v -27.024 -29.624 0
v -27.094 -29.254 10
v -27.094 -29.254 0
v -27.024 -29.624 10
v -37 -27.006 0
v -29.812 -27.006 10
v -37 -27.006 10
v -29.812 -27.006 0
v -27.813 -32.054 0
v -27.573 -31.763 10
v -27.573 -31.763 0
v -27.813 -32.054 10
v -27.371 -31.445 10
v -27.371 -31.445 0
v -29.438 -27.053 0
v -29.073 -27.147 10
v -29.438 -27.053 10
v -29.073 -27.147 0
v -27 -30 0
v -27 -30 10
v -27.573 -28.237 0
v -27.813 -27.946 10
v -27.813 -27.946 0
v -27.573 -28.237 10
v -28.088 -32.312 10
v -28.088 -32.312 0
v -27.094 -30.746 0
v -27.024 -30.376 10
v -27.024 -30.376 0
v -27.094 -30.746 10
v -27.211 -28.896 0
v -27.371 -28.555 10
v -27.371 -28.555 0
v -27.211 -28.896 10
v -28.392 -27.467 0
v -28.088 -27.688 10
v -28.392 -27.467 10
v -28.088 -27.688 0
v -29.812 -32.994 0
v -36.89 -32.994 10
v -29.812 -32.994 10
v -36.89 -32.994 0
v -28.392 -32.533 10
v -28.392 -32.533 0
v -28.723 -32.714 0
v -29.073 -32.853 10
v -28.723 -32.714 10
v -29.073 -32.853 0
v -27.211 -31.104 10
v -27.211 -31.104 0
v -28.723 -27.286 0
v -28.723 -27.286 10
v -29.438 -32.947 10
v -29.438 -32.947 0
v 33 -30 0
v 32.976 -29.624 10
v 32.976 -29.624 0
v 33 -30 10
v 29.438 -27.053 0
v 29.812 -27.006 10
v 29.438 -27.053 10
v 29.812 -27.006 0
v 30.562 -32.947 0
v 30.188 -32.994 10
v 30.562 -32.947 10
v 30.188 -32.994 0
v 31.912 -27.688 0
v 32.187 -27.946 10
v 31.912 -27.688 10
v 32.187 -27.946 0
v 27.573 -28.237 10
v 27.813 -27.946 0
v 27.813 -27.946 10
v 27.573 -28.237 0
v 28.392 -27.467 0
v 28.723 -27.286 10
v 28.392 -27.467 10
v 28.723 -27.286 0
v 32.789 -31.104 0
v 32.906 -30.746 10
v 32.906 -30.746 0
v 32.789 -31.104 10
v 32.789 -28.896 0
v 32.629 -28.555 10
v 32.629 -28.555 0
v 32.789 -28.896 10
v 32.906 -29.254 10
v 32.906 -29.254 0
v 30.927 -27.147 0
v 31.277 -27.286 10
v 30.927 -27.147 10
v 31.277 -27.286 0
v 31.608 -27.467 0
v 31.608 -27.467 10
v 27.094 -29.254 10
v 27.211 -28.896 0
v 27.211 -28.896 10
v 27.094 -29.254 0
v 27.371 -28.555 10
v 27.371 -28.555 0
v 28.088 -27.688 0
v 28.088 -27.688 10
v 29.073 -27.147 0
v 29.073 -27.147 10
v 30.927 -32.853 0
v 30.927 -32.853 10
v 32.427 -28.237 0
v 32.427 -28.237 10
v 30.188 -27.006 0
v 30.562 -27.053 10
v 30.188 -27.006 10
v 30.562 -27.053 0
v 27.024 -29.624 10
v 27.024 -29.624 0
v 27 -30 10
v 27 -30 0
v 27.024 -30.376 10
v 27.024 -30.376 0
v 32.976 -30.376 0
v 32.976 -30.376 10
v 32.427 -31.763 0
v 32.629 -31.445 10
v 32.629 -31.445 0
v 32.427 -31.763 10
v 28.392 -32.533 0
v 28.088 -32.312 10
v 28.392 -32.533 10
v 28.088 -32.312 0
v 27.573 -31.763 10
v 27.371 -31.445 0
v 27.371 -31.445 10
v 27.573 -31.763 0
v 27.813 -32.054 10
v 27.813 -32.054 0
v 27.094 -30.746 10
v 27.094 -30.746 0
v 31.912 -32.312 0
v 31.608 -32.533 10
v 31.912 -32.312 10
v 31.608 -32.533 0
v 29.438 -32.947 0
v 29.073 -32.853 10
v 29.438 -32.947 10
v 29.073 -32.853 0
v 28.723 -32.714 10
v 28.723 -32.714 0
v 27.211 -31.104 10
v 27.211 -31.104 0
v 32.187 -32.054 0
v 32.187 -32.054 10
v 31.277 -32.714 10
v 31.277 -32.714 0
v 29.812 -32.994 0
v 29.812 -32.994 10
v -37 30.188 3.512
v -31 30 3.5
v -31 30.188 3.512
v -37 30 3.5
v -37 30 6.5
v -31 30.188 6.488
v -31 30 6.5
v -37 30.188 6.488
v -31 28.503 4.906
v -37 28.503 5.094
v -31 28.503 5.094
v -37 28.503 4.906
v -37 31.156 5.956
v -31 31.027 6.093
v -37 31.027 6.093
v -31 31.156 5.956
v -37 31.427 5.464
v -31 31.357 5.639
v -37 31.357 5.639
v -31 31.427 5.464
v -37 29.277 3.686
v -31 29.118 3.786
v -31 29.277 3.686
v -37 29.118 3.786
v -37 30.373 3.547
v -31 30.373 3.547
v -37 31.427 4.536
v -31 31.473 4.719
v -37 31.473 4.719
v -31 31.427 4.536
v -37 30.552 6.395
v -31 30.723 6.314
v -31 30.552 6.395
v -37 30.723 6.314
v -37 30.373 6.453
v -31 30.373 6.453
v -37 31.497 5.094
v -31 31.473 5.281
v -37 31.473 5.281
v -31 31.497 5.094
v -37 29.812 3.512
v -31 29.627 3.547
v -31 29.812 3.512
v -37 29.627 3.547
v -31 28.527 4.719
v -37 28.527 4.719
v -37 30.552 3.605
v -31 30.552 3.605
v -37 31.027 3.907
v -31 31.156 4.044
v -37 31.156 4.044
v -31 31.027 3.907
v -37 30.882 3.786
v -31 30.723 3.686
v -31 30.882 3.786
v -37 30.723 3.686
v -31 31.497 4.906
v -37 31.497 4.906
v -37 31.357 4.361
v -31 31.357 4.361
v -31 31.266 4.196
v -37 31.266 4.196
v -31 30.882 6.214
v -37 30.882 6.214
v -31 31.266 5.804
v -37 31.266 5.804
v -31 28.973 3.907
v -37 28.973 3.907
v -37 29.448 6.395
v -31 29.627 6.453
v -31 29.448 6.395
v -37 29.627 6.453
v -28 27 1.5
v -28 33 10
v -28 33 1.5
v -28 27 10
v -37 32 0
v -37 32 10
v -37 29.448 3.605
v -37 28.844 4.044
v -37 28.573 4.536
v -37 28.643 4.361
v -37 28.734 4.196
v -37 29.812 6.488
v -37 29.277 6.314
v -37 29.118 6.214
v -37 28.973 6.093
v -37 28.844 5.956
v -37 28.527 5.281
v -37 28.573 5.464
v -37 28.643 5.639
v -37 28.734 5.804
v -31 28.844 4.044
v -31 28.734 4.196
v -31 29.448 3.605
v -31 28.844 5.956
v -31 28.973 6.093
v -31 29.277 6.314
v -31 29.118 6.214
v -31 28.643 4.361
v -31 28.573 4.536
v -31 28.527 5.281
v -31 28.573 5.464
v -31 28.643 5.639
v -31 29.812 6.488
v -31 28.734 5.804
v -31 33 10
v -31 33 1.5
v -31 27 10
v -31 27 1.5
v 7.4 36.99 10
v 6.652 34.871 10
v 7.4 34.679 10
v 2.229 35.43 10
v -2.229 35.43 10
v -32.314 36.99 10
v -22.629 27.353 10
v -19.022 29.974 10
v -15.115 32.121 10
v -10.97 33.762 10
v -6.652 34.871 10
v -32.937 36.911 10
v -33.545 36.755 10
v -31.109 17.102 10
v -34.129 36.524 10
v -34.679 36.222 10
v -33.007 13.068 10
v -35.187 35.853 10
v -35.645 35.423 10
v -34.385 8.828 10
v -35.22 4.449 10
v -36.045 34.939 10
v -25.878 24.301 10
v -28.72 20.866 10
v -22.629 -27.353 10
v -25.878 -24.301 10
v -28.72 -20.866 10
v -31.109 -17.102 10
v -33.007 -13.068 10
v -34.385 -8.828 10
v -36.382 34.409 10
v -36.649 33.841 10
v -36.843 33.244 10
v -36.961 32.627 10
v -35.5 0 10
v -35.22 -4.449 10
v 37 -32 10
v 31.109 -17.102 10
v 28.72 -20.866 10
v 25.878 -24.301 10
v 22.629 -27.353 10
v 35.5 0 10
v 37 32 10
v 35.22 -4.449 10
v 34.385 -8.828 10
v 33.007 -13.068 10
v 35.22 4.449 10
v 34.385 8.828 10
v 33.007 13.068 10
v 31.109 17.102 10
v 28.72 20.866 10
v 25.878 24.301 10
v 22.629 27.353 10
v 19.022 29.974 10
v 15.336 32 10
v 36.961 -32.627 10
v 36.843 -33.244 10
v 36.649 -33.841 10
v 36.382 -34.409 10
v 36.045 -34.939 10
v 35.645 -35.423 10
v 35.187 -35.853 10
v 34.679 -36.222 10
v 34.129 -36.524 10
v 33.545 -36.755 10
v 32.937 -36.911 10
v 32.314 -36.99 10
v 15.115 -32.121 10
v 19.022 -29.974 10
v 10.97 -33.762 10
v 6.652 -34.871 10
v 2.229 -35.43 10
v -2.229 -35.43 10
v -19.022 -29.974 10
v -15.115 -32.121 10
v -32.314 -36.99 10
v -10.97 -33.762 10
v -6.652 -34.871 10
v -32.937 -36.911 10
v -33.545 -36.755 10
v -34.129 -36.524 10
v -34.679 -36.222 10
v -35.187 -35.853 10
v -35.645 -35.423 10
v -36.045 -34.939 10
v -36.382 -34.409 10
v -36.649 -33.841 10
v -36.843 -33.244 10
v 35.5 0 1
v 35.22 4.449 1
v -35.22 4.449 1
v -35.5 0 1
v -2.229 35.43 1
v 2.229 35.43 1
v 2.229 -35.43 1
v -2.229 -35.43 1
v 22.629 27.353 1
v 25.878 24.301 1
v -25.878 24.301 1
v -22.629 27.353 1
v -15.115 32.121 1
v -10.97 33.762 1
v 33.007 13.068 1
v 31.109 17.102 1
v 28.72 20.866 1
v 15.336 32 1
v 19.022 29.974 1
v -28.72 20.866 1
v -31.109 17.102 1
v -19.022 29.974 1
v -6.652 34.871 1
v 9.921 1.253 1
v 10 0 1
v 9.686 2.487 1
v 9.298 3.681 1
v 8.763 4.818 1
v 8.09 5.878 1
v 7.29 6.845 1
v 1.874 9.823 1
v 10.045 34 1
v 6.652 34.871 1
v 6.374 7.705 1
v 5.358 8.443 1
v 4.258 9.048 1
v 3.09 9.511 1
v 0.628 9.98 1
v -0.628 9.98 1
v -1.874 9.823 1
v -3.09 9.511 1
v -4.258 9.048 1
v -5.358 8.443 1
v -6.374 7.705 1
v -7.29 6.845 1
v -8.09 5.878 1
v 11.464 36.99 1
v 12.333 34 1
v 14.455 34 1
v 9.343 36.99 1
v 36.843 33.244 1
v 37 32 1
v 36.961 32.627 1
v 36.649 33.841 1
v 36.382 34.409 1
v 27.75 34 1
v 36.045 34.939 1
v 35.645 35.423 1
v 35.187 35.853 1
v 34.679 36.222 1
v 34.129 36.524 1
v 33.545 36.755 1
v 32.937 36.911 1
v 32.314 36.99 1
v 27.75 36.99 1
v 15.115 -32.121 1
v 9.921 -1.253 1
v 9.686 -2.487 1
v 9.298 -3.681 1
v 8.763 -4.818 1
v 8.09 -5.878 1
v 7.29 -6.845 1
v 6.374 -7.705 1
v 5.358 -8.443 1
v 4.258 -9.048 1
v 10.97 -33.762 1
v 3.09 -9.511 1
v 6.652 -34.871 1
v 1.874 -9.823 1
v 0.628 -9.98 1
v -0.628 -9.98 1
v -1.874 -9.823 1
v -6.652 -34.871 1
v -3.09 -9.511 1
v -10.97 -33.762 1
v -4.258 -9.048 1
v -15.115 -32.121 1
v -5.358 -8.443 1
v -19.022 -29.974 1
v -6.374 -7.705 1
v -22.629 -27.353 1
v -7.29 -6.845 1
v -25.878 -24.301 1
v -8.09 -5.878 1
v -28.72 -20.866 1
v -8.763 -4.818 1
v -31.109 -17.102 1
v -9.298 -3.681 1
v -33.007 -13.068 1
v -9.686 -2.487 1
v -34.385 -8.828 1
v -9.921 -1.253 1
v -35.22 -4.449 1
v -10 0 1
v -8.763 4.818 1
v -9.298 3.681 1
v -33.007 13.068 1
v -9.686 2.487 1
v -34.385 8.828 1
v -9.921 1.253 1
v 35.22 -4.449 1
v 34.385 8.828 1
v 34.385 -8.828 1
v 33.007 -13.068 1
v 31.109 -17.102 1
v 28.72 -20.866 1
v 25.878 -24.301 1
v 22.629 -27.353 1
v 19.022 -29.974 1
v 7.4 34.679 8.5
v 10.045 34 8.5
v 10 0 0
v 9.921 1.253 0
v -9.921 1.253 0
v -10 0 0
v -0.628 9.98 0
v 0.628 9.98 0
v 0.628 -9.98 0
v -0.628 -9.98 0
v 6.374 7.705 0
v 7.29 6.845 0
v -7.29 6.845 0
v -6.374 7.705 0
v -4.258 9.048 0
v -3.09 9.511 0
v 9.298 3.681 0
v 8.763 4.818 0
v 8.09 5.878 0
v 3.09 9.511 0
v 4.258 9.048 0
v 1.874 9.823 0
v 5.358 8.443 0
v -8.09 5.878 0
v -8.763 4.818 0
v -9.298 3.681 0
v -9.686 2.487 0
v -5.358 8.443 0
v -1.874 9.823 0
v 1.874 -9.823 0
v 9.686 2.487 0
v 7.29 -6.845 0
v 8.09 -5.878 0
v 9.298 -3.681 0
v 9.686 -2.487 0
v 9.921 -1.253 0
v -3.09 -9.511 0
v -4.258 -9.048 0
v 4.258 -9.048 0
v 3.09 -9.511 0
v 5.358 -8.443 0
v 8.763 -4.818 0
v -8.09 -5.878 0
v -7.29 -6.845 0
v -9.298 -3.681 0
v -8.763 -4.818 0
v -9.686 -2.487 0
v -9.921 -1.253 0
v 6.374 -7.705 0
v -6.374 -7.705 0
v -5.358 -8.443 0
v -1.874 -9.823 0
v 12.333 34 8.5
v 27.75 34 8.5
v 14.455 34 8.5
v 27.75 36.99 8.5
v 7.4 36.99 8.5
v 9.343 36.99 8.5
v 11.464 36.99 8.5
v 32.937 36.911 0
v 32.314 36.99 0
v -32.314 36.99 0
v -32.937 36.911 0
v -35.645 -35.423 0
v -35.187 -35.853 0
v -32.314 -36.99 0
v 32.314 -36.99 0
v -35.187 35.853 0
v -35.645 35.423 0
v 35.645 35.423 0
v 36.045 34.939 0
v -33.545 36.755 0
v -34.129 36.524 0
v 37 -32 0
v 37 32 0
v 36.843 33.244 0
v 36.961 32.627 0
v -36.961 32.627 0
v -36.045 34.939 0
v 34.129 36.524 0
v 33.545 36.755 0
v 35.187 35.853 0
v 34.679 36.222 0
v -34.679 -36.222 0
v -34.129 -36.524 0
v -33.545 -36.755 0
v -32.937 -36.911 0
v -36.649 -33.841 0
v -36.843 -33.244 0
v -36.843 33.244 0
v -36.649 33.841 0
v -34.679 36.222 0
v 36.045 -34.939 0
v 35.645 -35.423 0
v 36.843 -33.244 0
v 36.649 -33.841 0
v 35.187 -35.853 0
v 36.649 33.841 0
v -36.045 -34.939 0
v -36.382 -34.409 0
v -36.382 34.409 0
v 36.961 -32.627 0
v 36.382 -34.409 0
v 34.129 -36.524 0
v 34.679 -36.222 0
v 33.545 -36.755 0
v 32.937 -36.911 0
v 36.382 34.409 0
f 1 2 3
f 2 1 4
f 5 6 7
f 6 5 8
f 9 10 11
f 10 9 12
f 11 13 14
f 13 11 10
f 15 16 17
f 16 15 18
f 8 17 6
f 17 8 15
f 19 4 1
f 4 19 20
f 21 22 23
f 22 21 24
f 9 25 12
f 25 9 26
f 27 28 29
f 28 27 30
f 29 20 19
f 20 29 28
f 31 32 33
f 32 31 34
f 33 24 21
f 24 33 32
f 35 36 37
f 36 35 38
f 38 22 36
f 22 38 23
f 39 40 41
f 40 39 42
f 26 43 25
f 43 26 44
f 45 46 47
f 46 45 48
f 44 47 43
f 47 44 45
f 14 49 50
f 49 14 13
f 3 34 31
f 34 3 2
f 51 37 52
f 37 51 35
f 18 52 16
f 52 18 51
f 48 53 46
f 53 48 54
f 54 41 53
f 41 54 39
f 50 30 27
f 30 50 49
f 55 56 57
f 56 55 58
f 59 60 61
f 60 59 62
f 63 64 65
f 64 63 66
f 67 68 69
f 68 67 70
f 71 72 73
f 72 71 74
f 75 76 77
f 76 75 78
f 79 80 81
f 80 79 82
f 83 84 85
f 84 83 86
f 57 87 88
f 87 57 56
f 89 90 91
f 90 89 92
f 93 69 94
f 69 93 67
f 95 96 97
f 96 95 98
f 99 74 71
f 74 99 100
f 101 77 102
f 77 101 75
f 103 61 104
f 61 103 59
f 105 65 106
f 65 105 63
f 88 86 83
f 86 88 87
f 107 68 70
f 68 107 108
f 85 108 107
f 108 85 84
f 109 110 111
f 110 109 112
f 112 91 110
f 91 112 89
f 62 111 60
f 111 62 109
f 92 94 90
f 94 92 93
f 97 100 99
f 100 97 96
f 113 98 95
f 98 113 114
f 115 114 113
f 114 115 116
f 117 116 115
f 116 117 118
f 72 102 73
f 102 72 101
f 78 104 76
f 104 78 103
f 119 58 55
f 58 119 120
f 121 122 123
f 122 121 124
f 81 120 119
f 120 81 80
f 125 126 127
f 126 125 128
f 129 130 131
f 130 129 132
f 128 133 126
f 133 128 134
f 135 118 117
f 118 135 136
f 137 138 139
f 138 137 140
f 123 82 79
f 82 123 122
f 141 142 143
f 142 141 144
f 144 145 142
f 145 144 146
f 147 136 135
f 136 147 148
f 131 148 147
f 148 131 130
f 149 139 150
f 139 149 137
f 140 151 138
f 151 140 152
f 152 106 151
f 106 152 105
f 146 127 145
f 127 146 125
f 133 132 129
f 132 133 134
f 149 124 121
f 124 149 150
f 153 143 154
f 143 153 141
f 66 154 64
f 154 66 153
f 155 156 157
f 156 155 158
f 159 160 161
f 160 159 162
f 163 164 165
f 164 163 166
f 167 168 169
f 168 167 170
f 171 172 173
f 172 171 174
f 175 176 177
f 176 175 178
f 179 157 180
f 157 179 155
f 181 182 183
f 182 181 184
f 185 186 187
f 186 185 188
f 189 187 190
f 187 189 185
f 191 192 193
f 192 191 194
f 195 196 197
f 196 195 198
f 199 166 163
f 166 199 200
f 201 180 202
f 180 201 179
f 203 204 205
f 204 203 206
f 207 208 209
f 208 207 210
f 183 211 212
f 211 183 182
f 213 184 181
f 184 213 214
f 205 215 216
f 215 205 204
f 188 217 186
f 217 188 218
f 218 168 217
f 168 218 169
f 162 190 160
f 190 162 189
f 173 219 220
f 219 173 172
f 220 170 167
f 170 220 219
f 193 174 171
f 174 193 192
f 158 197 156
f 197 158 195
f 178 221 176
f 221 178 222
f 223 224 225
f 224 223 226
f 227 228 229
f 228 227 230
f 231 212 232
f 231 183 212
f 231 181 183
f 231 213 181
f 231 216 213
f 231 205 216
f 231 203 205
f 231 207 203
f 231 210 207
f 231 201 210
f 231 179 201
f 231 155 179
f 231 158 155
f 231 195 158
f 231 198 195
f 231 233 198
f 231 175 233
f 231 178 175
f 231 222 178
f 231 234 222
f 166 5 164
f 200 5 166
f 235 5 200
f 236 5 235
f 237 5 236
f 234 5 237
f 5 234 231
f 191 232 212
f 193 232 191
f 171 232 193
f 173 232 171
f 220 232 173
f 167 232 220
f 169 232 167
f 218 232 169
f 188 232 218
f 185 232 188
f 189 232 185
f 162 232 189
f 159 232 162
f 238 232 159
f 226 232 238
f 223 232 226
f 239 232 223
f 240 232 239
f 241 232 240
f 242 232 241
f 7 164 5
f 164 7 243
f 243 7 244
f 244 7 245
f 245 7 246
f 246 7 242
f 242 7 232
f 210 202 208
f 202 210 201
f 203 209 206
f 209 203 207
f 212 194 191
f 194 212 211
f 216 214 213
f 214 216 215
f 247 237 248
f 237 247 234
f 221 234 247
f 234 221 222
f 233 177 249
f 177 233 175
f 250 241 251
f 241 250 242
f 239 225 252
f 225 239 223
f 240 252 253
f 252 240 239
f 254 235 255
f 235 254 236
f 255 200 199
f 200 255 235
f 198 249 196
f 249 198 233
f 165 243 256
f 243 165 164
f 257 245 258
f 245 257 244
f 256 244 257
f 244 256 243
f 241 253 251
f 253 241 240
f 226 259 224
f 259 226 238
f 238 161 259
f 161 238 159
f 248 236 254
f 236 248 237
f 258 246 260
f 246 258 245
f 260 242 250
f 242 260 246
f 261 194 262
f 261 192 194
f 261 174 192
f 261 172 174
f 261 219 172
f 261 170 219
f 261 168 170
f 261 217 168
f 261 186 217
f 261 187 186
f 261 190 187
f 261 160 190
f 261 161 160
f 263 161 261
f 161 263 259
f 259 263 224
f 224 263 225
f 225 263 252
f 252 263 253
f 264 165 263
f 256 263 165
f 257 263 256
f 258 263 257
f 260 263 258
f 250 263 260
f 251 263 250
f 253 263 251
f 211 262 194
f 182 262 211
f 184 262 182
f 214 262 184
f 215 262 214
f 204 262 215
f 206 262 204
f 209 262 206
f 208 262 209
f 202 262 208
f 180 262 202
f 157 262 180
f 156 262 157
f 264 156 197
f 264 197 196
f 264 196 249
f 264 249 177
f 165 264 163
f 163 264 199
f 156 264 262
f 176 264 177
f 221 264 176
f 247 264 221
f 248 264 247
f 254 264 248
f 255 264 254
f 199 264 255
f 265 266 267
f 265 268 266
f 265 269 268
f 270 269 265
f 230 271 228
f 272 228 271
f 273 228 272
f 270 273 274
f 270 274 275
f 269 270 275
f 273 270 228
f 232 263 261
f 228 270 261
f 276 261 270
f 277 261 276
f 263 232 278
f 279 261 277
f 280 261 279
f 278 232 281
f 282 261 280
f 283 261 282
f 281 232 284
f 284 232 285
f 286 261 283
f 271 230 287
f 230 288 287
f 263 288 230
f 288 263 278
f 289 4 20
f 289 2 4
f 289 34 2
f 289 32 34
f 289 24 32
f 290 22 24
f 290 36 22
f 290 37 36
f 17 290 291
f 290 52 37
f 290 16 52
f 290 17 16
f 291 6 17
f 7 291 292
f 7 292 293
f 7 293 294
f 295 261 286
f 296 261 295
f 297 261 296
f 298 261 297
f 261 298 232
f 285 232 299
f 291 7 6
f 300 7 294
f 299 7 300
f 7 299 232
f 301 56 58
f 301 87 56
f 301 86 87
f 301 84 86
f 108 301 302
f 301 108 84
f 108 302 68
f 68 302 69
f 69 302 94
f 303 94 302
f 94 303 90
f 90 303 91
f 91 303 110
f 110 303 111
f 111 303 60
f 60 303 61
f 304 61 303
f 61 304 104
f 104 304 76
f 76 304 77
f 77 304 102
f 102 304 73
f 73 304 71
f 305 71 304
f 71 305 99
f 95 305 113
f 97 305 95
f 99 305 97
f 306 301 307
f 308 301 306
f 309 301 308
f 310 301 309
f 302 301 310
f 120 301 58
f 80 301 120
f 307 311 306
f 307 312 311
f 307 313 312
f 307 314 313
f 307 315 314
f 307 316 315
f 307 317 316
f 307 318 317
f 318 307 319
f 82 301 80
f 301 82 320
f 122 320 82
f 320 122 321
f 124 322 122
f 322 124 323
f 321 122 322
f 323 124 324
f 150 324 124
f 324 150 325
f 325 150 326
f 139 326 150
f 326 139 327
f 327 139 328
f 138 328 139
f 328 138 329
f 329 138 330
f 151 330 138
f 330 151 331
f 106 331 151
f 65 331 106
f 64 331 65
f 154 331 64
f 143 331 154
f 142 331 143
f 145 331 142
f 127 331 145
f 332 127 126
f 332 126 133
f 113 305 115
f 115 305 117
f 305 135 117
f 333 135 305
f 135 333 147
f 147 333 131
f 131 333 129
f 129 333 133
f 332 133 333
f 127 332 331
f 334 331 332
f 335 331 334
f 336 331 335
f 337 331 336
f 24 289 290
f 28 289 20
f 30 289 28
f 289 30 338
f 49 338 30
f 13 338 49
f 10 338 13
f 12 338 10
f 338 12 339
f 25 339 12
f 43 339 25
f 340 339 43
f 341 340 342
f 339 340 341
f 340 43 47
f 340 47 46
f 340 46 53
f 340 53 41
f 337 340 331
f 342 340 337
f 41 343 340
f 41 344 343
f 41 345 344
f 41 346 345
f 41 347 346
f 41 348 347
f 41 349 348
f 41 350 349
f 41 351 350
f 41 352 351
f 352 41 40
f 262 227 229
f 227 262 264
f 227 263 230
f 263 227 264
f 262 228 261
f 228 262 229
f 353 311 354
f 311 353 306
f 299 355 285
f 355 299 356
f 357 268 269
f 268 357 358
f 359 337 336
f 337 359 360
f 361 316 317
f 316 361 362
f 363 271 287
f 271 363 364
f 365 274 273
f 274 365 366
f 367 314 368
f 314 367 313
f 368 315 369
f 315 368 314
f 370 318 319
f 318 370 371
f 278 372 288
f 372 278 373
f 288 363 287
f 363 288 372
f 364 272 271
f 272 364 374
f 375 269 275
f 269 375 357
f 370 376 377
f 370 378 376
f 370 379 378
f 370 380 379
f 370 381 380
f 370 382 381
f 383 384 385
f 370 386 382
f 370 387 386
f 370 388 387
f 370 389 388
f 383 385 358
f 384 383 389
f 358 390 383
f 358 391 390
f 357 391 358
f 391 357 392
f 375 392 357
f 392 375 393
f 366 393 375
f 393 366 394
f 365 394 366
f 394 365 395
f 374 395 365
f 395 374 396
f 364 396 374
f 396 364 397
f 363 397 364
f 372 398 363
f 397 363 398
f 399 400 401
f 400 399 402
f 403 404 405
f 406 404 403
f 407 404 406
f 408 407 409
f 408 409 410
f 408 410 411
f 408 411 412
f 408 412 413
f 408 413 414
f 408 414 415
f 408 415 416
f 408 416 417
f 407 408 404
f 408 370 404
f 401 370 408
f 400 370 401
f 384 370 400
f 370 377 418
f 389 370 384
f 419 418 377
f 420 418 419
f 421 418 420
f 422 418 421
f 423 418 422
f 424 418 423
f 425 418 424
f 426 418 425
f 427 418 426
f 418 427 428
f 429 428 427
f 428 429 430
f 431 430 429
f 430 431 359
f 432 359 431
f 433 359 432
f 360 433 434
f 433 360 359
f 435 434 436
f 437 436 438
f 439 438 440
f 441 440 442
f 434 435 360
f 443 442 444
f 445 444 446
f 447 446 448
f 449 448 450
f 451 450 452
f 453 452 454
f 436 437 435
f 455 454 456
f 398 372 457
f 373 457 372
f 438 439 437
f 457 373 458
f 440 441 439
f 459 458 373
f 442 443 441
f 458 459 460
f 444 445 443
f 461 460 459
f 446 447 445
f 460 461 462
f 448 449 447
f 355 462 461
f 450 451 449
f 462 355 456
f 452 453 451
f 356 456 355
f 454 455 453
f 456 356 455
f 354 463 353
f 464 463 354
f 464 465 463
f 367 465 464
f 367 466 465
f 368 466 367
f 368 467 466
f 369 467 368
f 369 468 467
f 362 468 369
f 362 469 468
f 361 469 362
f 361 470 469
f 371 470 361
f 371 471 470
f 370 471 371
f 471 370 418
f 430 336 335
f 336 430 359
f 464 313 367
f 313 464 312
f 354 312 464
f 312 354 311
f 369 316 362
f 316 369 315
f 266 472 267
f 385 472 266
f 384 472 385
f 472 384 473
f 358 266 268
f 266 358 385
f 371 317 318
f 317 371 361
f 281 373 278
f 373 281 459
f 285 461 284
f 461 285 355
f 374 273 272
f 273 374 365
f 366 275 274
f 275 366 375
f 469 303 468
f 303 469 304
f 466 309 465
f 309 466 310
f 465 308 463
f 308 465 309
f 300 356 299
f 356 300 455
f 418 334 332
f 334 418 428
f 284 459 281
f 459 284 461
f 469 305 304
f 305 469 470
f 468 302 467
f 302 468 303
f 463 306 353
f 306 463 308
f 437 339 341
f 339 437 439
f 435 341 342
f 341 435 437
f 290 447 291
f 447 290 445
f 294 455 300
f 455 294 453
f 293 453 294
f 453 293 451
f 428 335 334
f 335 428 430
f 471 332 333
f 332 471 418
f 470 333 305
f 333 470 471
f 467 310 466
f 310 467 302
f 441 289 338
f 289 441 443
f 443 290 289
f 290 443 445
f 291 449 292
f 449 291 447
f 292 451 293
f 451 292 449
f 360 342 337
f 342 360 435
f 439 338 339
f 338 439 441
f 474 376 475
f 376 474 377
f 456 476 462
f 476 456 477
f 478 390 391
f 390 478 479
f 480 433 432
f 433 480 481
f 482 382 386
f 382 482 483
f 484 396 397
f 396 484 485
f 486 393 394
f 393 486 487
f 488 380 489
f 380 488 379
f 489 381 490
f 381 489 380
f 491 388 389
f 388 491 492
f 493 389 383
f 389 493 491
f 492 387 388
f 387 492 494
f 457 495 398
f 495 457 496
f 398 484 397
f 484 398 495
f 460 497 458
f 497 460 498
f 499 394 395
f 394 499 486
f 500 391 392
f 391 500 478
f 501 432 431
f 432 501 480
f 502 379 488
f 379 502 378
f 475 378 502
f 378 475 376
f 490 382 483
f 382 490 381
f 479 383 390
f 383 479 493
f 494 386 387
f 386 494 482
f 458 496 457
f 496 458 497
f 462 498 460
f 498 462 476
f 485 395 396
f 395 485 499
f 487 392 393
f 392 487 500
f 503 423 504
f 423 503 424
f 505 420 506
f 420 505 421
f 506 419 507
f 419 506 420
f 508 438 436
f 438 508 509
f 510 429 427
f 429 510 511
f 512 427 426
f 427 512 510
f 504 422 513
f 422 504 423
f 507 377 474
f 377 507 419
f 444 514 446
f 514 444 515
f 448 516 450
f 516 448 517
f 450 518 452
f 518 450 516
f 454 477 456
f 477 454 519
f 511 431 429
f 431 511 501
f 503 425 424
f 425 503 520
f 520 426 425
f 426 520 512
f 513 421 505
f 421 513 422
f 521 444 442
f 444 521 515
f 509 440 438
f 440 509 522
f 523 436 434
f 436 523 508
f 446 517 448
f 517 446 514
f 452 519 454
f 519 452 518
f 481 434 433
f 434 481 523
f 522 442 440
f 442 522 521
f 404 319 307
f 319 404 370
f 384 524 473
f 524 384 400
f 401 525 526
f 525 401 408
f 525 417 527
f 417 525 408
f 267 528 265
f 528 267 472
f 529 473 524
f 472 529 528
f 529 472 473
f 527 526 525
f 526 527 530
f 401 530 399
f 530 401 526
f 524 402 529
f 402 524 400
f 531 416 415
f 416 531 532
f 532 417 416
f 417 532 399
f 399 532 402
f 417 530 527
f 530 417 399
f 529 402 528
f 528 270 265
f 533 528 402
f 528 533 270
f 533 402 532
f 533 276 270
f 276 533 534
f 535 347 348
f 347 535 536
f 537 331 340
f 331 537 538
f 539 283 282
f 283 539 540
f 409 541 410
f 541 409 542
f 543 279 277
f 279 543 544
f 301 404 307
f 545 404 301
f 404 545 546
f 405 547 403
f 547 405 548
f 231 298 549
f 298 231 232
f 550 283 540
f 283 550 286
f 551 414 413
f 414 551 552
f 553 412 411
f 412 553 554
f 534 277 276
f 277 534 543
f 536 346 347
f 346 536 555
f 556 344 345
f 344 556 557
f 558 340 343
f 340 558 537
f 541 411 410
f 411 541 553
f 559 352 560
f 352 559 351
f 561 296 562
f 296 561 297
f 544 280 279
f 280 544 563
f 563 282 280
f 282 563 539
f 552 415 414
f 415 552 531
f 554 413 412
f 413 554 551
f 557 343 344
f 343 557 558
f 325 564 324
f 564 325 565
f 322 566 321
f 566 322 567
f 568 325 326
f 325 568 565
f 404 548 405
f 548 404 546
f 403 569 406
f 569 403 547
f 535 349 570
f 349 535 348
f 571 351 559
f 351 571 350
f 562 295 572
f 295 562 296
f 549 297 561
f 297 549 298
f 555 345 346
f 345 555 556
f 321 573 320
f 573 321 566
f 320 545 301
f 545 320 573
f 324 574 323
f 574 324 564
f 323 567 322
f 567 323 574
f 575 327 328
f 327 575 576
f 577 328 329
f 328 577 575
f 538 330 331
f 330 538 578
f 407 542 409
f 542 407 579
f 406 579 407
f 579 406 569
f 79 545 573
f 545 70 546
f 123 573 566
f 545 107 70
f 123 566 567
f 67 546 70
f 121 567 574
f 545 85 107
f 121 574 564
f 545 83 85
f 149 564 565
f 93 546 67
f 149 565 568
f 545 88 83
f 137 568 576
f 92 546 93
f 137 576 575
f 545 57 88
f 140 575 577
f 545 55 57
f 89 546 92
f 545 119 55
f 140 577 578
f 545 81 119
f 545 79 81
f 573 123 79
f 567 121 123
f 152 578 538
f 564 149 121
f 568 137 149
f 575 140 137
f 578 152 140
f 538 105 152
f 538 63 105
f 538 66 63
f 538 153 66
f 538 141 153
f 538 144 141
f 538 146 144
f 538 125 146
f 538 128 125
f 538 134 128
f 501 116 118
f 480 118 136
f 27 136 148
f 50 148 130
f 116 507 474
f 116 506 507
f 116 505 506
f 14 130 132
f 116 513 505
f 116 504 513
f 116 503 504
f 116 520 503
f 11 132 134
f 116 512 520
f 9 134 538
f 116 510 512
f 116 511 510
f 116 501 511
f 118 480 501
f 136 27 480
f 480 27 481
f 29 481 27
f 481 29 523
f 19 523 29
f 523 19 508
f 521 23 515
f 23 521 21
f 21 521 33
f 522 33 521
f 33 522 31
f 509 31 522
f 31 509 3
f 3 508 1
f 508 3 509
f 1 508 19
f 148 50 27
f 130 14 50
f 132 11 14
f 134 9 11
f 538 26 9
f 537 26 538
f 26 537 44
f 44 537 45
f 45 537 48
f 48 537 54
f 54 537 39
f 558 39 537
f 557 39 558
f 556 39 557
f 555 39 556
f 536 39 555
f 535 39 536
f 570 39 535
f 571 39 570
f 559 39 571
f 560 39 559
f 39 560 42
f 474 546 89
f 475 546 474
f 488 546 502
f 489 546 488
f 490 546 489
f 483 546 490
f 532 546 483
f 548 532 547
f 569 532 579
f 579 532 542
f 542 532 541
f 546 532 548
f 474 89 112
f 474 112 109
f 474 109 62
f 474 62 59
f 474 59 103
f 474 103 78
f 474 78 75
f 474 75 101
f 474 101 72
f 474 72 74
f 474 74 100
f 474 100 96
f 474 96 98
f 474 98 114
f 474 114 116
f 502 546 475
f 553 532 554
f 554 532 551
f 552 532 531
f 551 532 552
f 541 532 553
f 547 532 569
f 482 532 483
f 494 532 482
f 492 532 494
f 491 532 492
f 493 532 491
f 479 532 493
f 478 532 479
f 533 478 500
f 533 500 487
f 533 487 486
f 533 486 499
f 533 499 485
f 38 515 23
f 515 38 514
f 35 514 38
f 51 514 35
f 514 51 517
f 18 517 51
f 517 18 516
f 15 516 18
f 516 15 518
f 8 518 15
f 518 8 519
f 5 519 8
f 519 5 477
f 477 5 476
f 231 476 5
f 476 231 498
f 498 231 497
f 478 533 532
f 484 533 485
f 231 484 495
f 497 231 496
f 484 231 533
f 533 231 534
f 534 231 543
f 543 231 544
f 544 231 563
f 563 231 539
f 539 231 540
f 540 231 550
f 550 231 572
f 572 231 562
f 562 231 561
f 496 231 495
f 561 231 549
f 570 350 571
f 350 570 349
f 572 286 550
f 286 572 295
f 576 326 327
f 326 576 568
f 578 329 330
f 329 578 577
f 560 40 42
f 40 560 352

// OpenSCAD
$fn = 50;


difference() {
	union() {
		translate(v = [0, 0, 0]) {
			rotate(a = [0, 0, 0]) {
				hull() {
					translate(v = [-32.0000000000, 32.0000000000, 0]) {
						rotate(a = [0, 0, 0]) {
							translate(v = [0, 0, 0]) {
								rotate(a = [0, 0, 0]) {
									cylinder(h = 10, r = 5);
								}
							}
						}
					}
					translate(v = [32.0000000000, 32.0000000000, 0]) {
						rotate(a = [0, 0, 0]) {
							translate(v = [0, 0, 0]) {
								rotate(a = [0, 0, 0]) {
									cylinder(h = 10, r = 5);
								}
							}
						}
					}
					translate(v = [-32.0000000000, -32.0000000000, 0]) {
						rotate(a = [0, 0, 0]) {
							translate(v = [0, 0, 0]) {
								rotate(a = [0, 0, 0]) {
									cylinder(h = 10, r = 5);
								}
							}
						}
					}
					translate(v = [32.0000000000, -32.0000000000, 0]) {
						rotate(a = [0, 0, 0]) {
							translate(v = [0, 0, 0]) {
								rotate(a = [0, 0, 0]) {
									cylinder(h = 10, r = 5);
								}
							}
						}
					}
				}
			}
		}
	}
	union() {
		translate(v = [-37.5000000000, -30.0000000000, -125]) {
			rotate(a = [0, 0, 0]) {
				hull() {
					translate(v = [7.5000000000, 0, 0]) {
						rotate(a = [0, 0, 0]) {
							translate(v = [0, 0, 0]) {
								rotate(a = [0, 0, 0]) {
									cylinder(h = 250, r = 3.0000000000);
								}
							}
						}
					}
					translate(v = [-7.5000000000, 0, 0]) {
						rotate(a = [0, 0, 0]) {
							translate(v = [0, 0, 0]) {
								rotate(a = [0, 0, 0]) {
									cylinder(h = 250, r = 3.0000000000);
								}
							}
						}
					}
				}
			}
		}
		translate(v = [30.0000000000, -30.0000000000, -125.0000000000]) {
			rotate(a = [0, 0, 0]) {
				cylinder(h = 250, r = 3.0000000000);
			}
		}
		translate(v = [-37.0000000000, 30.0000000000, 5.0000000000]) {
			rotate(a = [0, 90, 0]) {
				cylinder(h = 9, r = 1.5000000000);
			}
		}
		translate(v = [-31.0000000000, 27.0000000000, 1.5000000000]) {
			rotate(a = [0, 0, 0]) {
				cube(size = [3, 6, 8.5000000000]);
			}
		}
		translate(v = [0, 0, 1.0000000000]) {
			rotate(a = [0, 0, 0]) {
				cylinder(h = 12, r = 35.5000000000);
			}
		}
		translate(v = [0, 0, -5.0000000000]) {
			rotate(a = [0, 0, 0]) {
				cylinder(h = 10, r = 10.0000000000);
			}
		}
		translate(v = [0.0000000000, 32.0000000000, 1]) {
			rotate(a = [0, 0, 0]) {
				cube(size = [37.0000000000, 2, 12]);
			}
		}
		translate(v = [27.7500000000, 32.0000000000, 1]) {
			rotate(a = [0, 0, 0]) {
				cube(size = [9.2500000000, 5, 12]);
			}
		}
		translate(v = [7.4000000000, 32.0000000000, 8.5000000000]) {
			rotate(a = [0, 0, 0]) {
				cube(size = [29.6000000000, 5, 1.5000000000]);
			}
		}
		translate(v = [8.5833333333, 37.7500000000, 1]) {
			rotate(a = [0, 0, -45]) {
				cube(size = [7.5000000000, 1.5000000000, 12]);
			}
		}
	}
}
